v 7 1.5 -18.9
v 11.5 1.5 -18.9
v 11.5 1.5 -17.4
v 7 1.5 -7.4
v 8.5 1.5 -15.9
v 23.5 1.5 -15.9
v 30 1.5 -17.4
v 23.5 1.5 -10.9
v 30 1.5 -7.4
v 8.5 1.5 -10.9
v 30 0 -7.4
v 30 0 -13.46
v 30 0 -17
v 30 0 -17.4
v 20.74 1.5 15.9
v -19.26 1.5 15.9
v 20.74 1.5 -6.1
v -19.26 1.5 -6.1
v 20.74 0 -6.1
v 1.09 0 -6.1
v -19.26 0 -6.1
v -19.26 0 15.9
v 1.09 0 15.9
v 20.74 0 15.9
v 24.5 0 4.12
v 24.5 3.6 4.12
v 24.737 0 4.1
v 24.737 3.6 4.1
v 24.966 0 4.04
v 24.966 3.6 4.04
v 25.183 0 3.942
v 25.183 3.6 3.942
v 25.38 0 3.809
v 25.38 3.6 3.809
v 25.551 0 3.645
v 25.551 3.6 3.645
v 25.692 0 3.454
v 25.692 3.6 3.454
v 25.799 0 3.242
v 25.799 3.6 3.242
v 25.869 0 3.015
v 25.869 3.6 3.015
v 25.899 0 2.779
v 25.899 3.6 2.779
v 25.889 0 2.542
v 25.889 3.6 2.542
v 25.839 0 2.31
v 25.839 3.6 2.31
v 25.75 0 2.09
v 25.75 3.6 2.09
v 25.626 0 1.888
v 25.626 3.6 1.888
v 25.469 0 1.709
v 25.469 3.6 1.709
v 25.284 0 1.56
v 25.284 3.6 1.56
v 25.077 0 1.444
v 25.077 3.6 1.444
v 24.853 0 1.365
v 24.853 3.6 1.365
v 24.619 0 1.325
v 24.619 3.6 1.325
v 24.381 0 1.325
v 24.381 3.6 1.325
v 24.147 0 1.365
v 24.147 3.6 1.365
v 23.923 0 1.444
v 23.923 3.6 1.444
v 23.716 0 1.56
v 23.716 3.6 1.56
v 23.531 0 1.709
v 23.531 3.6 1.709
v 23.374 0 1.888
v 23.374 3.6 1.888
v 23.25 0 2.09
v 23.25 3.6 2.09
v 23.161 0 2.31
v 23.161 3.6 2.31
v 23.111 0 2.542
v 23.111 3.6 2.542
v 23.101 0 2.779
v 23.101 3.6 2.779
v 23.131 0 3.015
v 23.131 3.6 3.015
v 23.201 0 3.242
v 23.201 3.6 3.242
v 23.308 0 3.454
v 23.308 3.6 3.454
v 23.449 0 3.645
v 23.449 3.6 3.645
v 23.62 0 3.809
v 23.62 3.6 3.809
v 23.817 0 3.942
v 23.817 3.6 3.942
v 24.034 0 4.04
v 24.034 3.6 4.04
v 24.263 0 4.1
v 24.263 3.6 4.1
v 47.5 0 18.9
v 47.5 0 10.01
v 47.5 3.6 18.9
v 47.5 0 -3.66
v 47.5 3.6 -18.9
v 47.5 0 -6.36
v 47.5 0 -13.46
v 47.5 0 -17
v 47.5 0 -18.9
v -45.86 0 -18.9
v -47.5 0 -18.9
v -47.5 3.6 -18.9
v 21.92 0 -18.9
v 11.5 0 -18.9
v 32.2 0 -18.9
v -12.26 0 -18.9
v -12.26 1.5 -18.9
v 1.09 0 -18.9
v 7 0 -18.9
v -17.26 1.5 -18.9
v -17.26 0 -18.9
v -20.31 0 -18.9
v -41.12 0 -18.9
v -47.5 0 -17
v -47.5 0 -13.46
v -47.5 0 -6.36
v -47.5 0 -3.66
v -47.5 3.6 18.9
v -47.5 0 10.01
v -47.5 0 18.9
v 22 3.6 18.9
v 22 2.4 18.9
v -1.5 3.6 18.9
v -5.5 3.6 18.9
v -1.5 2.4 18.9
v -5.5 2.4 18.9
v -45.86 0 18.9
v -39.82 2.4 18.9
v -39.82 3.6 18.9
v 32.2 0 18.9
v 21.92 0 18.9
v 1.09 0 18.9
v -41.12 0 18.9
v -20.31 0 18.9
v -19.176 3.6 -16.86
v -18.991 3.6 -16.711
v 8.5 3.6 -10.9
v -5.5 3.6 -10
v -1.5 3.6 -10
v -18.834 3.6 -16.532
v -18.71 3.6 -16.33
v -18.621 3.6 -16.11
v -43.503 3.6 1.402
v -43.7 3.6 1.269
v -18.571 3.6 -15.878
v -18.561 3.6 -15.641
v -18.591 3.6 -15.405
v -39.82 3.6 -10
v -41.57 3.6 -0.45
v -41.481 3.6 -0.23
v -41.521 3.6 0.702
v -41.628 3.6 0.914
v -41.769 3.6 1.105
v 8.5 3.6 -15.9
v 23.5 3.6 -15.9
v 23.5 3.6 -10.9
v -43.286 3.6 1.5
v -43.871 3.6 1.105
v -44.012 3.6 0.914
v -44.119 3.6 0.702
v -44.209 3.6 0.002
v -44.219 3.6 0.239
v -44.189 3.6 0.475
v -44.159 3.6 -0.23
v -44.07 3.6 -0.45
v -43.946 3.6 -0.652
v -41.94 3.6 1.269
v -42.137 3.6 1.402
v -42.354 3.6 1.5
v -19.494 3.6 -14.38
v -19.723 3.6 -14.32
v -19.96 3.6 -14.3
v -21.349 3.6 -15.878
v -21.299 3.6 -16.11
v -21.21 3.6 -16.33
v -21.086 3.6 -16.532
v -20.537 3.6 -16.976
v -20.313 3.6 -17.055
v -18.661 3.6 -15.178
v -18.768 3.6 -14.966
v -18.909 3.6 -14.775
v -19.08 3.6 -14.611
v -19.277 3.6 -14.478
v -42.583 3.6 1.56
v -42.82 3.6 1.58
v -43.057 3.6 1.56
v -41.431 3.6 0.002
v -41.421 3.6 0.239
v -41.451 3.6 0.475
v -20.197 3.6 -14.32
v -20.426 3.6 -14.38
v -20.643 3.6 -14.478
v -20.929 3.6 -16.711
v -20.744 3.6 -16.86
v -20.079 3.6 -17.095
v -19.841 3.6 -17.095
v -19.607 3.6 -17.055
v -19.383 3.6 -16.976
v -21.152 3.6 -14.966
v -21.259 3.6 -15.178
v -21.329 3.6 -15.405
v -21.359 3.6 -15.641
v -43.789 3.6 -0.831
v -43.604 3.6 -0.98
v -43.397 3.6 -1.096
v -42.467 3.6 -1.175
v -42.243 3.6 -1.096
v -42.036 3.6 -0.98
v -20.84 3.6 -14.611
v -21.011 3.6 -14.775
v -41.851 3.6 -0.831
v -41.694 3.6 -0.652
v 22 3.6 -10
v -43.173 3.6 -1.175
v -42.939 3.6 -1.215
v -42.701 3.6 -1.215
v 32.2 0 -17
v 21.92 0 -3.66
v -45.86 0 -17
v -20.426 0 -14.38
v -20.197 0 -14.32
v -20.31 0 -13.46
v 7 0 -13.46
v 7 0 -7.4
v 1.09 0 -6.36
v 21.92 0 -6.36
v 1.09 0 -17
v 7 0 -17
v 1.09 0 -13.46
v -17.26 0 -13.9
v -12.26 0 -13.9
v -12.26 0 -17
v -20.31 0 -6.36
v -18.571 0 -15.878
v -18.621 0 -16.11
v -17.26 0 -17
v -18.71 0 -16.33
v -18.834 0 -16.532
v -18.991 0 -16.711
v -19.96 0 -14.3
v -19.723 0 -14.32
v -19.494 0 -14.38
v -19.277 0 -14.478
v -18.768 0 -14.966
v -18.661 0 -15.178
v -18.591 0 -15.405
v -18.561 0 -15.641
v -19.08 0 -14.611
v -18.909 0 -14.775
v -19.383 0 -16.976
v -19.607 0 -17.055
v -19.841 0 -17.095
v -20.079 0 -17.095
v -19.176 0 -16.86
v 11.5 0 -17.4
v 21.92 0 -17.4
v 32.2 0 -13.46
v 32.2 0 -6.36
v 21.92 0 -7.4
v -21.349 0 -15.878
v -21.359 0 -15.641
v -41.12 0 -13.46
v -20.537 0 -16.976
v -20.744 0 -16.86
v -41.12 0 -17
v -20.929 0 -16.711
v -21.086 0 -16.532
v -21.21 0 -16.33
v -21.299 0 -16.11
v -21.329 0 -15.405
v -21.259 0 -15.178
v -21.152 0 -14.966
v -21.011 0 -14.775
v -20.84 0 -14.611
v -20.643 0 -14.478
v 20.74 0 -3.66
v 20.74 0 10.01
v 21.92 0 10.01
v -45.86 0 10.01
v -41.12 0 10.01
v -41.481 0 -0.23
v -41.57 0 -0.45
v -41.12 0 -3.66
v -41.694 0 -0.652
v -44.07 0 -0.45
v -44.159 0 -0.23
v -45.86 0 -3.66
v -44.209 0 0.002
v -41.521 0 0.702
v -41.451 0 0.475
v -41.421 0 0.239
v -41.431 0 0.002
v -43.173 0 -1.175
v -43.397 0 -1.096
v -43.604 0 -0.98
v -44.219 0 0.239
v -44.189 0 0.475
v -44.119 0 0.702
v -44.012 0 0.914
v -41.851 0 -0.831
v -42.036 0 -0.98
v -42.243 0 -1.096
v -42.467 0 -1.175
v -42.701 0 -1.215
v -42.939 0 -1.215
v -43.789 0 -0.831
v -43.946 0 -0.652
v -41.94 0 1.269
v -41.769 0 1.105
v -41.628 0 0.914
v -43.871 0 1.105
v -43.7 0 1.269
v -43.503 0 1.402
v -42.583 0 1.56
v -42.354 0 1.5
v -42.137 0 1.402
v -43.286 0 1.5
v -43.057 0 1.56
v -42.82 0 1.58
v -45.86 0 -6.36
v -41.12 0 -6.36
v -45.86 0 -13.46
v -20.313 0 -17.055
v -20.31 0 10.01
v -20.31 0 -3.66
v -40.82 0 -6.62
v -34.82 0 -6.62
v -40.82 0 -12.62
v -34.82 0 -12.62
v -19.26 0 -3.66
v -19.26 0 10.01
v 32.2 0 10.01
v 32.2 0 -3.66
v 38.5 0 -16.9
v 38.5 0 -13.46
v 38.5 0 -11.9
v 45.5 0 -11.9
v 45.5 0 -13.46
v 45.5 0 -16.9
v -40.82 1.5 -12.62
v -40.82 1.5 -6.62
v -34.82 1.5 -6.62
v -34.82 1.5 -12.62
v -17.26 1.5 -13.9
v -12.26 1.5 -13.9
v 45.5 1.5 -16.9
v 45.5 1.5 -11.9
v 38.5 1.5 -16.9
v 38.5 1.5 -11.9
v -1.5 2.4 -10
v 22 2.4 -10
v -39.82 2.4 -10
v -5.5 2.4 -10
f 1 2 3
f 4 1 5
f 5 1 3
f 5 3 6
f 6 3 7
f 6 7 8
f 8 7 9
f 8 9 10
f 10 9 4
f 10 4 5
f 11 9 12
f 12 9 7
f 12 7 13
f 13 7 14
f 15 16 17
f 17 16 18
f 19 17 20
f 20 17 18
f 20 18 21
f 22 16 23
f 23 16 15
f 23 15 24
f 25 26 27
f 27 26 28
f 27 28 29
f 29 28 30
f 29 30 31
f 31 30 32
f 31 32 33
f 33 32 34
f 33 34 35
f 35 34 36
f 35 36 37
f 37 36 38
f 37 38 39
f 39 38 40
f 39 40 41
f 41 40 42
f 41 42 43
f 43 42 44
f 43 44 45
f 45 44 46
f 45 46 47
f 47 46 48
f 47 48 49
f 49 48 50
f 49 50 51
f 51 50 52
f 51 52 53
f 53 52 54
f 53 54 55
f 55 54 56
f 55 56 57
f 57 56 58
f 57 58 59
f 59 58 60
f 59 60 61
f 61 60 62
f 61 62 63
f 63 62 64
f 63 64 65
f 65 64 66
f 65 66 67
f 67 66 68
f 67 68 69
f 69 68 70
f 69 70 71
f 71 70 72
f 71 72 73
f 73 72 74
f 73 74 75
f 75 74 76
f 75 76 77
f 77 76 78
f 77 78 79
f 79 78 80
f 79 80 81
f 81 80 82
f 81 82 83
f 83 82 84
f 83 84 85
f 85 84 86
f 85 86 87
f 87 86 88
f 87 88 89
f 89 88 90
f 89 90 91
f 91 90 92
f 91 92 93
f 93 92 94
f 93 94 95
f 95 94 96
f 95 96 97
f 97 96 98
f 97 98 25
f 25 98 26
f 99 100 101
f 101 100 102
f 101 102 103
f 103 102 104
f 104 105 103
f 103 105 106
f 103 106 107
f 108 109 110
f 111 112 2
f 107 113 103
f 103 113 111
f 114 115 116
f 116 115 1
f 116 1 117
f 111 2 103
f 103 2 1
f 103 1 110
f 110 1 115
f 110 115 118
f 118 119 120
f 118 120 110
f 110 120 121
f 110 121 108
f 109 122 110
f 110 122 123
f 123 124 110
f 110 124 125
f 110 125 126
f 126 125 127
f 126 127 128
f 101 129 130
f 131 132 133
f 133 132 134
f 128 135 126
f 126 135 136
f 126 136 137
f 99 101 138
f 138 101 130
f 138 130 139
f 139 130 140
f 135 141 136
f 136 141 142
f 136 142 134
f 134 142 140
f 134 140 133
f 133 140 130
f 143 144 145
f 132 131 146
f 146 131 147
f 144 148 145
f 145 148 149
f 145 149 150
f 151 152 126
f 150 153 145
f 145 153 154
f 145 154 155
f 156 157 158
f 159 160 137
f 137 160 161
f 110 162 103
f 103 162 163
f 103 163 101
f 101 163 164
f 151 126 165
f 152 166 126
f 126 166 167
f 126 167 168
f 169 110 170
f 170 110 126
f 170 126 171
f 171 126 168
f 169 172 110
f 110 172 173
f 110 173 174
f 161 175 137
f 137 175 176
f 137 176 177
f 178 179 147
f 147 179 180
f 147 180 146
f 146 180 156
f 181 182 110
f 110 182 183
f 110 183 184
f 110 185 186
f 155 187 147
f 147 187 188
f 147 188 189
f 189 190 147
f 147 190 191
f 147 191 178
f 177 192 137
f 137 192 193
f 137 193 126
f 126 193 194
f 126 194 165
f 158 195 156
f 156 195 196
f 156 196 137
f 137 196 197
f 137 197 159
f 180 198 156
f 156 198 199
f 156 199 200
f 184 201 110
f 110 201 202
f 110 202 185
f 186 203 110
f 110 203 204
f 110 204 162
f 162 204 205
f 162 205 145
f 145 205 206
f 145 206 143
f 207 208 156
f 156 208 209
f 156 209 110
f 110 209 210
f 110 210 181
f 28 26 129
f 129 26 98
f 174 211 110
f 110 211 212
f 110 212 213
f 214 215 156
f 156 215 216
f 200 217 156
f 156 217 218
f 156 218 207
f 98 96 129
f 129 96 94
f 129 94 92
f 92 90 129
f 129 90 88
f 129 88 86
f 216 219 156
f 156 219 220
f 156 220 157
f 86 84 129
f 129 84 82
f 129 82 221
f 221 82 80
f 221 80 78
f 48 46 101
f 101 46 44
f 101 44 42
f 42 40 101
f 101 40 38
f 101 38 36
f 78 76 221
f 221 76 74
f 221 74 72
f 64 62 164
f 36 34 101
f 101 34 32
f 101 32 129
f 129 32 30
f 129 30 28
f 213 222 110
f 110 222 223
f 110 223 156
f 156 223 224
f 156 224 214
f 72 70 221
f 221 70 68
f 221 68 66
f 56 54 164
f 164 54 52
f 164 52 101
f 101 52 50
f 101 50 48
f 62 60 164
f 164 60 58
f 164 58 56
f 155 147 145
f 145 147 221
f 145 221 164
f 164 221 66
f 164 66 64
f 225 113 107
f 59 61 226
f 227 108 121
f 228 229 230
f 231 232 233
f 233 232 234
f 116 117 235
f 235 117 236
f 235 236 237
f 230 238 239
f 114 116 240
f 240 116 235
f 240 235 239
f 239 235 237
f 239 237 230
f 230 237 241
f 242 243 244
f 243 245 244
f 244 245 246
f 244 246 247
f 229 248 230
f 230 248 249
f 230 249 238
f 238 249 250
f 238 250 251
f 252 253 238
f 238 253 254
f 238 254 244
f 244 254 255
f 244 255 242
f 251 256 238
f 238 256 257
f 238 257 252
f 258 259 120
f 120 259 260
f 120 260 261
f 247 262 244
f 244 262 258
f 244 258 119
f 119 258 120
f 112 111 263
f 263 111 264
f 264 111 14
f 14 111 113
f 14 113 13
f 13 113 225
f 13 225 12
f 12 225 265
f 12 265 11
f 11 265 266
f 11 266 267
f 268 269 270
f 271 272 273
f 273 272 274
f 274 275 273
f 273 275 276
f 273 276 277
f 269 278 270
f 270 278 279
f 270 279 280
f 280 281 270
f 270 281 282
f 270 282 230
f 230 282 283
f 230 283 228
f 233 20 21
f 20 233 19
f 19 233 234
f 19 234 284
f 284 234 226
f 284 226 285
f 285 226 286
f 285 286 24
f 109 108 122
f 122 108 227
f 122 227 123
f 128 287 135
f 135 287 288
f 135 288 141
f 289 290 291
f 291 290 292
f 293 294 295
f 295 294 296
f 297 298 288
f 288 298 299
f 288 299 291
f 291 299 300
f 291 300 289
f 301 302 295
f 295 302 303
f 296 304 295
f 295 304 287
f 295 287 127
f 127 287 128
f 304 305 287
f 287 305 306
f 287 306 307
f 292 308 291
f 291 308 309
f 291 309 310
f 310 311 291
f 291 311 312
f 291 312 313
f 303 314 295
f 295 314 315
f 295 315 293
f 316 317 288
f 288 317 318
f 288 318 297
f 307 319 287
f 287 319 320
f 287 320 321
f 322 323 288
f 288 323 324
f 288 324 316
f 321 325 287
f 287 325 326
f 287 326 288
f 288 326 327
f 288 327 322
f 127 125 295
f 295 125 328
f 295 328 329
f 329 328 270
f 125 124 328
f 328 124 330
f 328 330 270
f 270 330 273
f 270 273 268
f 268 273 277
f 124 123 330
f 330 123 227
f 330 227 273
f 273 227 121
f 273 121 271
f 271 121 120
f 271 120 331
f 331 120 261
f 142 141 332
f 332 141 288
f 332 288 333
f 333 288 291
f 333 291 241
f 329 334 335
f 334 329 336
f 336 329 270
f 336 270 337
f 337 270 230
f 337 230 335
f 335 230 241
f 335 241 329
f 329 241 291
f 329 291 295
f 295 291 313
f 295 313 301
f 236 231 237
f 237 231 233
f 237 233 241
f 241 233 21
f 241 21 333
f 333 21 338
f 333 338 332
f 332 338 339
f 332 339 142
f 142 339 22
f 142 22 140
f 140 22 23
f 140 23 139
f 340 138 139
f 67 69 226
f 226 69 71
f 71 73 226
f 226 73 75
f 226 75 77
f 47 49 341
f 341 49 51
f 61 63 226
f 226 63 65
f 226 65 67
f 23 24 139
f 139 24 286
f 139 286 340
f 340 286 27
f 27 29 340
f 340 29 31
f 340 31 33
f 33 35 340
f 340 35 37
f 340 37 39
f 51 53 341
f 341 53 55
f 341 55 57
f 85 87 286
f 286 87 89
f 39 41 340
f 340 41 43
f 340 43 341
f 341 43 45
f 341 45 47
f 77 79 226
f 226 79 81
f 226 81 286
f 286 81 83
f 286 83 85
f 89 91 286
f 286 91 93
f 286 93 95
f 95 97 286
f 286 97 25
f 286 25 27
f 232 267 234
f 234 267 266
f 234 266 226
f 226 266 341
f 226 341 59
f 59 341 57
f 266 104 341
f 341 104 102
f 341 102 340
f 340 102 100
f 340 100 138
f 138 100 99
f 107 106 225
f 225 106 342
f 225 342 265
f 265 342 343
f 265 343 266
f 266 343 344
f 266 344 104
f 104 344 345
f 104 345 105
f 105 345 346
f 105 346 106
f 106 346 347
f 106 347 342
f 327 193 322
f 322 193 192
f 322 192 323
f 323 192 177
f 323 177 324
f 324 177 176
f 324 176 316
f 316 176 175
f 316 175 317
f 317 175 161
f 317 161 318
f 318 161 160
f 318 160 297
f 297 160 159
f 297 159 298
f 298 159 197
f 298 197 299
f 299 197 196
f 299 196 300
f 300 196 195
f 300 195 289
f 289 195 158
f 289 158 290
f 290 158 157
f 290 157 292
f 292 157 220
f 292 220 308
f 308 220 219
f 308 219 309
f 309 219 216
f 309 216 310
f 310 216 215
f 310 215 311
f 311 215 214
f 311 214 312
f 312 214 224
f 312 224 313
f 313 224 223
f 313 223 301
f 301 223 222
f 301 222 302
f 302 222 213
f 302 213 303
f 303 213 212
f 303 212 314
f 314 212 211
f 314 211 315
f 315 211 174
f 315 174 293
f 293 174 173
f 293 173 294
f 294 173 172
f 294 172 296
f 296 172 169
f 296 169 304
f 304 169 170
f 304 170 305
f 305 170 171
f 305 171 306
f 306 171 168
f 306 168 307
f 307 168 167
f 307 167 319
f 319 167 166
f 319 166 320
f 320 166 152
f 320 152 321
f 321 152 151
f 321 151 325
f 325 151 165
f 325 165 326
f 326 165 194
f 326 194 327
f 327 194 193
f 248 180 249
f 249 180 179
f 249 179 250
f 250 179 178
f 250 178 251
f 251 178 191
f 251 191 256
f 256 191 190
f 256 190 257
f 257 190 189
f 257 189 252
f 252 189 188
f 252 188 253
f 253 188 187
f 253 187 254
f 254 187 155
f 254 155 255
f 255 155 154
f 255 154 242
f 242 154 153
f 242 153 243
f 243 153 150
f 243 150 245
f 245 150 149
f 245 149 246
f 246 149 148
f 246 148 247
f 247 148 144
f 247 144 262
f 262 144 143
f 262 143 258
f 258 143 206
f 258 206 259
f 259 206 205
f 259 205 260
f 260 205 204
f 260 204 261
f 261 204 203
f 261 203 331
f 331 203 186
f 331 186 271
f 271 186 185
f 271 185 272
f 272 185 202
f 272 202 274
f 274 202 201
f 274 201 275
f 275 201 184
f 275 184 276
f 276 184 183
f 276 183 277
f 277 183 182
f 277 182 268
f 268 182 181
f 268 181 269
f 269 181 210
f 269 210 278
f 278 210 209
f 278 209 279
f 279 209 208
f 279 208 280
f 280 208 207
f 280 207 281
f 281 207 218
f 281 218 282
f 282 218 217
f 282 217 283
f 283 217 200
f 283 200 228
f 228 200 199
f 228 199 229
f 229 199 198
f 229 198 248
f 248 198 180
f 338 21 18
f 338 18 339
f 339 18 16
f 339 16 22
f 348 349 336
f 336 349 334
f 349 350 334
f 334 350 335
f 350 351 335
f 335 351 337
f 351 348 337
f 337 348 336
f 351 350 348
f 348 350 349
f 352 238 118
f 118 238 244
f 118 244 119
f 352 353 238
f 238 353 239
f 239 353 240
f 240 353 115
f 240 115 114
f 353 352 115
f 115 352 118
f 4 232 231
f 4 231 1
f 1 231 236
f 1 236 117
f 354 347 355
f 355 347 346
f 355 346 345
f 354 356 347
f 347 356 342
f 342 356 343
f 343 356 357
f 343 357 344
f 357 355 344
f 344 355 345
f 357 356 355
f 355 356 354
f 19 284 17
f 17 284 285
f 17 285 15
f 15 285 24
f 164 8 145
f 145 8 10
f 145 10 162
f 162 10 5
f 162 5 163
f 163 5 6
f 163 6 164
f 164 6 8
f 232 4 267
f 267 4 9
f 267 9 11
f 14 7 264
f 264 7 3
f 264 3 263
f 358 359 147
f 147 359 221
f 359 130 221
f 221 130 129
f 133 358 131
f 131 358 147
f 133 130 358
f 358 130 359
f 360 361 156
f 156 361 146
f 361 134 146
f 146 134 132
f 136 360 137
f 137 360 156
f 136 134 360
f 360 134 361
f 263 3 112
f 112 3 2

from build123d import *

# Parameters (mm, degrees)
SKETCH1_W           = 95
SKETCH1_H           = 37.8
BOSS_EXTRUDE1_DEPTH = 3.6
SKETCH2_R           = 1.4
CUT_EXTRUDE1_DEPTH  = 4
SKETCH3_W           = 6
SKETCH3_H           = 6
SKETCH3_W_2         = 7
SKETCH3_H_2         = 5
SKETCH3_W_3         = 5
CUT_EXTRUDE5_DEPTH  = 1.5
BOSS_EXTRUDE3_DEPTH = 1.5
SKETCH6_W           = 15
SKETCH6_H           = 5
CUT_EXTRUDE6_DEPTH  = 18.5
SKETCH7_W           = 10
SKETCH7_H           = 1.5
CUT_EXTRUDE7_DEPTH  = 2
SKETCH9_W           = 23
SKETCH9_H           = 1.5
CUT_EXTRUDE8_DEPTH  = 1.5
SKETCH10_W          = 18
SKETCH10_H          = 1.5
BOSS_EXTRUDE5_DEPTH = 1.5
SKETCH11_W          = 34.32
SKETCH11_H          = 28.9
SKETCH11_W_2        = 23.5
CUT_EXTRUDE10_DEPTH = 1.2
SKETCH12_W          = 1.5
SKETCH12_H          = 1.5
BOSS_EXTRUDE6_DEPTH = 0.5


with BuildPart() as part:
    # Sketch1 → Boss-Extrude1 (new body)
    with BuildSketch(Plane(origin=(0, 0, 0), x_dir=(1, 0, 0), z_dir=(0, 1, 0))):
        Rectangle(SKETCH1_W, SKETCH1_H)
    extrude(amount=BOSS_EXTRUDE1_DEPTH)

    # Sketch2 → Cut-Extrude1 (cut)
    with BuildSketch(Plane(origin=(0, 3.6, 0), x_dir=(1, 0, 0), z_dir=(0, 1, 0))):
        with Locations((-42.82, -0.18)):
            Circle(SKETCH2_R)
        with Locations((-19.96, 15.7)):
            Circle(SKETCH2_R)
        with Locations((24.5, -2.72)):
            Circle(SKETCH2_R)
    extrude(amount=-CUT_EXTRUDE1_DEPTH, mode=Mode.SUBTRACT)

    # Sketch3 → Cut-Extrude5 (cut)
    with BuildSketch(Plane.XZ):
        with Locations((-37.82, -9.62)):
            Rectangle(SKETCH3_W, SKETCH3_H)
        Polygon((28, -18.9), (7, -18.9), (7, -8.9), (11, -8.9), (28, -8.9), align=None)
        with BuildLine():
            Line((-19.26, -6.1), (-19.26, 15.9))
            Line((-19.26, 15.9), (22.74, 15.9))
            Line((22.74, 15.9), (22.74, 4.12))
            Line((22.74, 4.12), (24.5, 4.12))
            ThreePointArc((24.5, 4.12), (25.9, 2.72), (24.5, 1.32))
            Line((24.5, 1.32), (22.74, 1.32))
            Line((22.74, 1.32), (22.74, -6.1))
            Line((22.74, -6.1), (-19.26, -6.1))
        make_face()
        with Locations((42, -14.4)):
            Rectangle(SKETCH3_W_2, SKETCH3_H_2)
        with Locations((-14.76, -16.4)):
            Rectangle(SKETCH3_W_3, SKETCH3_H_2)
    extrude(amount=-CUT_EXTRUDE5_DEPTH, mode=Mode.SUBTRACT)

    # Sketch4 → Boss-Extrude3 (add)
    with BuildSketch(Plane.XZ.offset(-1.5)):
        with BuildLine():
            Line((22.74, 4.12), (22.74, 15.9))
            Line((22.74, 15.9), (20.74, 15.9))
            Line((20.74, 15.9), (20.74, 4.12))
            Line((20.74, 4.12), (20.74, -6.1))
            Line((20.74, -6.1), (22.74, -6.1))
            Line((22.74, -6.1), (22.74, 1.32))
            Line((22.74, 1.32), (24.5, 1.32))
            ThreePointArc((24.5, 1.32), (23.1, 2.72), (24.5, 4.12))
            Line((24.5, 4.12), (22.74, 4.12))
        make_face()
    extrude(amount=BOSS_EXTRUDE3_DEPTH)

    # Sketch6 → Cut-Extrude6 (cut)
    with BuildSketch(Plane(origin=(0, 3.6, 0), x_dir=(1, 0, 0), z_dir=(0, 1, 0))):
        with Locations((16, 13.4)):
            Rectangle(SKETCH6_W, SKETCH6_H)
    extrude(amount=-CUT_EXTRUDE6_DEPTH, mode=Mode.SUBTRACT)

    # Sketch7 → Cut-Extrude7 (cut)
    with BuildSketch(Plane.ZY.offset(-28)):
        with Locations((-13.9, 0.75)):
            Rectangle(SKETCH7_W, SKETCH7_H)
    extrude(amount=-CUT_EXTRUDE7_DEPTH, mode=Mode.SUBTRACT)

    # Sketch9 → Cut-Extrude8 (cut)
    with BuildSketch(Plane(origin=(0, 0, -8.9), x_dir=(-1, 0, 0), z_dir=(0, 0, -1))):
        with Locations((-18.5, 0.75)):
            Rectangle(SKETCH9_W, SKETCH9_H)
    extrude(amount=-CUT_EXTRUDE8_DEPTH, mode=Mode.SUBTRACT)

    # Sketch10 → Boss-Extrude5 (add)
    with BuildSketch(Plane.XZ.offset(-1.5)):
        with Locations((21, -18.15)):
            Rectangle(SKETCH10_W, SKETCH10_H)
    extrude(amount=BOSS_EXTRUDE5_DEPTH)

    # Sketch11 → Cut-Extrude10 (cut)
    with BuildSketch(Plane(origin=(0, 3.6, 0), x_dir=(1, 0, 0), z_dir=(0, 1, 0))):
        with Locations((-22.66, -4.45)):
            Rectangle(SKETCH11_W, SKETCH11_H)
        with Locations((10.25, -4.45)):
            Rectangle(SKETCH11_W_2, SKETCH11_H)
    extrude(amount=-CUT_EXTRUDE10_DEPTH, mode=Mode.SUBTRACT)

    # Sketch12 → Boss-Extrude6 (add)
    with BuildSketch(Plane.ZY.offset(-12)):
        with Locations((-18.15, 0.75)):
            Rectangle(SKETCH12_W, SKETCH12_H)
    extrude(amount=BOSS_EXTRUDE6_DEPTH)


solid = part.part
